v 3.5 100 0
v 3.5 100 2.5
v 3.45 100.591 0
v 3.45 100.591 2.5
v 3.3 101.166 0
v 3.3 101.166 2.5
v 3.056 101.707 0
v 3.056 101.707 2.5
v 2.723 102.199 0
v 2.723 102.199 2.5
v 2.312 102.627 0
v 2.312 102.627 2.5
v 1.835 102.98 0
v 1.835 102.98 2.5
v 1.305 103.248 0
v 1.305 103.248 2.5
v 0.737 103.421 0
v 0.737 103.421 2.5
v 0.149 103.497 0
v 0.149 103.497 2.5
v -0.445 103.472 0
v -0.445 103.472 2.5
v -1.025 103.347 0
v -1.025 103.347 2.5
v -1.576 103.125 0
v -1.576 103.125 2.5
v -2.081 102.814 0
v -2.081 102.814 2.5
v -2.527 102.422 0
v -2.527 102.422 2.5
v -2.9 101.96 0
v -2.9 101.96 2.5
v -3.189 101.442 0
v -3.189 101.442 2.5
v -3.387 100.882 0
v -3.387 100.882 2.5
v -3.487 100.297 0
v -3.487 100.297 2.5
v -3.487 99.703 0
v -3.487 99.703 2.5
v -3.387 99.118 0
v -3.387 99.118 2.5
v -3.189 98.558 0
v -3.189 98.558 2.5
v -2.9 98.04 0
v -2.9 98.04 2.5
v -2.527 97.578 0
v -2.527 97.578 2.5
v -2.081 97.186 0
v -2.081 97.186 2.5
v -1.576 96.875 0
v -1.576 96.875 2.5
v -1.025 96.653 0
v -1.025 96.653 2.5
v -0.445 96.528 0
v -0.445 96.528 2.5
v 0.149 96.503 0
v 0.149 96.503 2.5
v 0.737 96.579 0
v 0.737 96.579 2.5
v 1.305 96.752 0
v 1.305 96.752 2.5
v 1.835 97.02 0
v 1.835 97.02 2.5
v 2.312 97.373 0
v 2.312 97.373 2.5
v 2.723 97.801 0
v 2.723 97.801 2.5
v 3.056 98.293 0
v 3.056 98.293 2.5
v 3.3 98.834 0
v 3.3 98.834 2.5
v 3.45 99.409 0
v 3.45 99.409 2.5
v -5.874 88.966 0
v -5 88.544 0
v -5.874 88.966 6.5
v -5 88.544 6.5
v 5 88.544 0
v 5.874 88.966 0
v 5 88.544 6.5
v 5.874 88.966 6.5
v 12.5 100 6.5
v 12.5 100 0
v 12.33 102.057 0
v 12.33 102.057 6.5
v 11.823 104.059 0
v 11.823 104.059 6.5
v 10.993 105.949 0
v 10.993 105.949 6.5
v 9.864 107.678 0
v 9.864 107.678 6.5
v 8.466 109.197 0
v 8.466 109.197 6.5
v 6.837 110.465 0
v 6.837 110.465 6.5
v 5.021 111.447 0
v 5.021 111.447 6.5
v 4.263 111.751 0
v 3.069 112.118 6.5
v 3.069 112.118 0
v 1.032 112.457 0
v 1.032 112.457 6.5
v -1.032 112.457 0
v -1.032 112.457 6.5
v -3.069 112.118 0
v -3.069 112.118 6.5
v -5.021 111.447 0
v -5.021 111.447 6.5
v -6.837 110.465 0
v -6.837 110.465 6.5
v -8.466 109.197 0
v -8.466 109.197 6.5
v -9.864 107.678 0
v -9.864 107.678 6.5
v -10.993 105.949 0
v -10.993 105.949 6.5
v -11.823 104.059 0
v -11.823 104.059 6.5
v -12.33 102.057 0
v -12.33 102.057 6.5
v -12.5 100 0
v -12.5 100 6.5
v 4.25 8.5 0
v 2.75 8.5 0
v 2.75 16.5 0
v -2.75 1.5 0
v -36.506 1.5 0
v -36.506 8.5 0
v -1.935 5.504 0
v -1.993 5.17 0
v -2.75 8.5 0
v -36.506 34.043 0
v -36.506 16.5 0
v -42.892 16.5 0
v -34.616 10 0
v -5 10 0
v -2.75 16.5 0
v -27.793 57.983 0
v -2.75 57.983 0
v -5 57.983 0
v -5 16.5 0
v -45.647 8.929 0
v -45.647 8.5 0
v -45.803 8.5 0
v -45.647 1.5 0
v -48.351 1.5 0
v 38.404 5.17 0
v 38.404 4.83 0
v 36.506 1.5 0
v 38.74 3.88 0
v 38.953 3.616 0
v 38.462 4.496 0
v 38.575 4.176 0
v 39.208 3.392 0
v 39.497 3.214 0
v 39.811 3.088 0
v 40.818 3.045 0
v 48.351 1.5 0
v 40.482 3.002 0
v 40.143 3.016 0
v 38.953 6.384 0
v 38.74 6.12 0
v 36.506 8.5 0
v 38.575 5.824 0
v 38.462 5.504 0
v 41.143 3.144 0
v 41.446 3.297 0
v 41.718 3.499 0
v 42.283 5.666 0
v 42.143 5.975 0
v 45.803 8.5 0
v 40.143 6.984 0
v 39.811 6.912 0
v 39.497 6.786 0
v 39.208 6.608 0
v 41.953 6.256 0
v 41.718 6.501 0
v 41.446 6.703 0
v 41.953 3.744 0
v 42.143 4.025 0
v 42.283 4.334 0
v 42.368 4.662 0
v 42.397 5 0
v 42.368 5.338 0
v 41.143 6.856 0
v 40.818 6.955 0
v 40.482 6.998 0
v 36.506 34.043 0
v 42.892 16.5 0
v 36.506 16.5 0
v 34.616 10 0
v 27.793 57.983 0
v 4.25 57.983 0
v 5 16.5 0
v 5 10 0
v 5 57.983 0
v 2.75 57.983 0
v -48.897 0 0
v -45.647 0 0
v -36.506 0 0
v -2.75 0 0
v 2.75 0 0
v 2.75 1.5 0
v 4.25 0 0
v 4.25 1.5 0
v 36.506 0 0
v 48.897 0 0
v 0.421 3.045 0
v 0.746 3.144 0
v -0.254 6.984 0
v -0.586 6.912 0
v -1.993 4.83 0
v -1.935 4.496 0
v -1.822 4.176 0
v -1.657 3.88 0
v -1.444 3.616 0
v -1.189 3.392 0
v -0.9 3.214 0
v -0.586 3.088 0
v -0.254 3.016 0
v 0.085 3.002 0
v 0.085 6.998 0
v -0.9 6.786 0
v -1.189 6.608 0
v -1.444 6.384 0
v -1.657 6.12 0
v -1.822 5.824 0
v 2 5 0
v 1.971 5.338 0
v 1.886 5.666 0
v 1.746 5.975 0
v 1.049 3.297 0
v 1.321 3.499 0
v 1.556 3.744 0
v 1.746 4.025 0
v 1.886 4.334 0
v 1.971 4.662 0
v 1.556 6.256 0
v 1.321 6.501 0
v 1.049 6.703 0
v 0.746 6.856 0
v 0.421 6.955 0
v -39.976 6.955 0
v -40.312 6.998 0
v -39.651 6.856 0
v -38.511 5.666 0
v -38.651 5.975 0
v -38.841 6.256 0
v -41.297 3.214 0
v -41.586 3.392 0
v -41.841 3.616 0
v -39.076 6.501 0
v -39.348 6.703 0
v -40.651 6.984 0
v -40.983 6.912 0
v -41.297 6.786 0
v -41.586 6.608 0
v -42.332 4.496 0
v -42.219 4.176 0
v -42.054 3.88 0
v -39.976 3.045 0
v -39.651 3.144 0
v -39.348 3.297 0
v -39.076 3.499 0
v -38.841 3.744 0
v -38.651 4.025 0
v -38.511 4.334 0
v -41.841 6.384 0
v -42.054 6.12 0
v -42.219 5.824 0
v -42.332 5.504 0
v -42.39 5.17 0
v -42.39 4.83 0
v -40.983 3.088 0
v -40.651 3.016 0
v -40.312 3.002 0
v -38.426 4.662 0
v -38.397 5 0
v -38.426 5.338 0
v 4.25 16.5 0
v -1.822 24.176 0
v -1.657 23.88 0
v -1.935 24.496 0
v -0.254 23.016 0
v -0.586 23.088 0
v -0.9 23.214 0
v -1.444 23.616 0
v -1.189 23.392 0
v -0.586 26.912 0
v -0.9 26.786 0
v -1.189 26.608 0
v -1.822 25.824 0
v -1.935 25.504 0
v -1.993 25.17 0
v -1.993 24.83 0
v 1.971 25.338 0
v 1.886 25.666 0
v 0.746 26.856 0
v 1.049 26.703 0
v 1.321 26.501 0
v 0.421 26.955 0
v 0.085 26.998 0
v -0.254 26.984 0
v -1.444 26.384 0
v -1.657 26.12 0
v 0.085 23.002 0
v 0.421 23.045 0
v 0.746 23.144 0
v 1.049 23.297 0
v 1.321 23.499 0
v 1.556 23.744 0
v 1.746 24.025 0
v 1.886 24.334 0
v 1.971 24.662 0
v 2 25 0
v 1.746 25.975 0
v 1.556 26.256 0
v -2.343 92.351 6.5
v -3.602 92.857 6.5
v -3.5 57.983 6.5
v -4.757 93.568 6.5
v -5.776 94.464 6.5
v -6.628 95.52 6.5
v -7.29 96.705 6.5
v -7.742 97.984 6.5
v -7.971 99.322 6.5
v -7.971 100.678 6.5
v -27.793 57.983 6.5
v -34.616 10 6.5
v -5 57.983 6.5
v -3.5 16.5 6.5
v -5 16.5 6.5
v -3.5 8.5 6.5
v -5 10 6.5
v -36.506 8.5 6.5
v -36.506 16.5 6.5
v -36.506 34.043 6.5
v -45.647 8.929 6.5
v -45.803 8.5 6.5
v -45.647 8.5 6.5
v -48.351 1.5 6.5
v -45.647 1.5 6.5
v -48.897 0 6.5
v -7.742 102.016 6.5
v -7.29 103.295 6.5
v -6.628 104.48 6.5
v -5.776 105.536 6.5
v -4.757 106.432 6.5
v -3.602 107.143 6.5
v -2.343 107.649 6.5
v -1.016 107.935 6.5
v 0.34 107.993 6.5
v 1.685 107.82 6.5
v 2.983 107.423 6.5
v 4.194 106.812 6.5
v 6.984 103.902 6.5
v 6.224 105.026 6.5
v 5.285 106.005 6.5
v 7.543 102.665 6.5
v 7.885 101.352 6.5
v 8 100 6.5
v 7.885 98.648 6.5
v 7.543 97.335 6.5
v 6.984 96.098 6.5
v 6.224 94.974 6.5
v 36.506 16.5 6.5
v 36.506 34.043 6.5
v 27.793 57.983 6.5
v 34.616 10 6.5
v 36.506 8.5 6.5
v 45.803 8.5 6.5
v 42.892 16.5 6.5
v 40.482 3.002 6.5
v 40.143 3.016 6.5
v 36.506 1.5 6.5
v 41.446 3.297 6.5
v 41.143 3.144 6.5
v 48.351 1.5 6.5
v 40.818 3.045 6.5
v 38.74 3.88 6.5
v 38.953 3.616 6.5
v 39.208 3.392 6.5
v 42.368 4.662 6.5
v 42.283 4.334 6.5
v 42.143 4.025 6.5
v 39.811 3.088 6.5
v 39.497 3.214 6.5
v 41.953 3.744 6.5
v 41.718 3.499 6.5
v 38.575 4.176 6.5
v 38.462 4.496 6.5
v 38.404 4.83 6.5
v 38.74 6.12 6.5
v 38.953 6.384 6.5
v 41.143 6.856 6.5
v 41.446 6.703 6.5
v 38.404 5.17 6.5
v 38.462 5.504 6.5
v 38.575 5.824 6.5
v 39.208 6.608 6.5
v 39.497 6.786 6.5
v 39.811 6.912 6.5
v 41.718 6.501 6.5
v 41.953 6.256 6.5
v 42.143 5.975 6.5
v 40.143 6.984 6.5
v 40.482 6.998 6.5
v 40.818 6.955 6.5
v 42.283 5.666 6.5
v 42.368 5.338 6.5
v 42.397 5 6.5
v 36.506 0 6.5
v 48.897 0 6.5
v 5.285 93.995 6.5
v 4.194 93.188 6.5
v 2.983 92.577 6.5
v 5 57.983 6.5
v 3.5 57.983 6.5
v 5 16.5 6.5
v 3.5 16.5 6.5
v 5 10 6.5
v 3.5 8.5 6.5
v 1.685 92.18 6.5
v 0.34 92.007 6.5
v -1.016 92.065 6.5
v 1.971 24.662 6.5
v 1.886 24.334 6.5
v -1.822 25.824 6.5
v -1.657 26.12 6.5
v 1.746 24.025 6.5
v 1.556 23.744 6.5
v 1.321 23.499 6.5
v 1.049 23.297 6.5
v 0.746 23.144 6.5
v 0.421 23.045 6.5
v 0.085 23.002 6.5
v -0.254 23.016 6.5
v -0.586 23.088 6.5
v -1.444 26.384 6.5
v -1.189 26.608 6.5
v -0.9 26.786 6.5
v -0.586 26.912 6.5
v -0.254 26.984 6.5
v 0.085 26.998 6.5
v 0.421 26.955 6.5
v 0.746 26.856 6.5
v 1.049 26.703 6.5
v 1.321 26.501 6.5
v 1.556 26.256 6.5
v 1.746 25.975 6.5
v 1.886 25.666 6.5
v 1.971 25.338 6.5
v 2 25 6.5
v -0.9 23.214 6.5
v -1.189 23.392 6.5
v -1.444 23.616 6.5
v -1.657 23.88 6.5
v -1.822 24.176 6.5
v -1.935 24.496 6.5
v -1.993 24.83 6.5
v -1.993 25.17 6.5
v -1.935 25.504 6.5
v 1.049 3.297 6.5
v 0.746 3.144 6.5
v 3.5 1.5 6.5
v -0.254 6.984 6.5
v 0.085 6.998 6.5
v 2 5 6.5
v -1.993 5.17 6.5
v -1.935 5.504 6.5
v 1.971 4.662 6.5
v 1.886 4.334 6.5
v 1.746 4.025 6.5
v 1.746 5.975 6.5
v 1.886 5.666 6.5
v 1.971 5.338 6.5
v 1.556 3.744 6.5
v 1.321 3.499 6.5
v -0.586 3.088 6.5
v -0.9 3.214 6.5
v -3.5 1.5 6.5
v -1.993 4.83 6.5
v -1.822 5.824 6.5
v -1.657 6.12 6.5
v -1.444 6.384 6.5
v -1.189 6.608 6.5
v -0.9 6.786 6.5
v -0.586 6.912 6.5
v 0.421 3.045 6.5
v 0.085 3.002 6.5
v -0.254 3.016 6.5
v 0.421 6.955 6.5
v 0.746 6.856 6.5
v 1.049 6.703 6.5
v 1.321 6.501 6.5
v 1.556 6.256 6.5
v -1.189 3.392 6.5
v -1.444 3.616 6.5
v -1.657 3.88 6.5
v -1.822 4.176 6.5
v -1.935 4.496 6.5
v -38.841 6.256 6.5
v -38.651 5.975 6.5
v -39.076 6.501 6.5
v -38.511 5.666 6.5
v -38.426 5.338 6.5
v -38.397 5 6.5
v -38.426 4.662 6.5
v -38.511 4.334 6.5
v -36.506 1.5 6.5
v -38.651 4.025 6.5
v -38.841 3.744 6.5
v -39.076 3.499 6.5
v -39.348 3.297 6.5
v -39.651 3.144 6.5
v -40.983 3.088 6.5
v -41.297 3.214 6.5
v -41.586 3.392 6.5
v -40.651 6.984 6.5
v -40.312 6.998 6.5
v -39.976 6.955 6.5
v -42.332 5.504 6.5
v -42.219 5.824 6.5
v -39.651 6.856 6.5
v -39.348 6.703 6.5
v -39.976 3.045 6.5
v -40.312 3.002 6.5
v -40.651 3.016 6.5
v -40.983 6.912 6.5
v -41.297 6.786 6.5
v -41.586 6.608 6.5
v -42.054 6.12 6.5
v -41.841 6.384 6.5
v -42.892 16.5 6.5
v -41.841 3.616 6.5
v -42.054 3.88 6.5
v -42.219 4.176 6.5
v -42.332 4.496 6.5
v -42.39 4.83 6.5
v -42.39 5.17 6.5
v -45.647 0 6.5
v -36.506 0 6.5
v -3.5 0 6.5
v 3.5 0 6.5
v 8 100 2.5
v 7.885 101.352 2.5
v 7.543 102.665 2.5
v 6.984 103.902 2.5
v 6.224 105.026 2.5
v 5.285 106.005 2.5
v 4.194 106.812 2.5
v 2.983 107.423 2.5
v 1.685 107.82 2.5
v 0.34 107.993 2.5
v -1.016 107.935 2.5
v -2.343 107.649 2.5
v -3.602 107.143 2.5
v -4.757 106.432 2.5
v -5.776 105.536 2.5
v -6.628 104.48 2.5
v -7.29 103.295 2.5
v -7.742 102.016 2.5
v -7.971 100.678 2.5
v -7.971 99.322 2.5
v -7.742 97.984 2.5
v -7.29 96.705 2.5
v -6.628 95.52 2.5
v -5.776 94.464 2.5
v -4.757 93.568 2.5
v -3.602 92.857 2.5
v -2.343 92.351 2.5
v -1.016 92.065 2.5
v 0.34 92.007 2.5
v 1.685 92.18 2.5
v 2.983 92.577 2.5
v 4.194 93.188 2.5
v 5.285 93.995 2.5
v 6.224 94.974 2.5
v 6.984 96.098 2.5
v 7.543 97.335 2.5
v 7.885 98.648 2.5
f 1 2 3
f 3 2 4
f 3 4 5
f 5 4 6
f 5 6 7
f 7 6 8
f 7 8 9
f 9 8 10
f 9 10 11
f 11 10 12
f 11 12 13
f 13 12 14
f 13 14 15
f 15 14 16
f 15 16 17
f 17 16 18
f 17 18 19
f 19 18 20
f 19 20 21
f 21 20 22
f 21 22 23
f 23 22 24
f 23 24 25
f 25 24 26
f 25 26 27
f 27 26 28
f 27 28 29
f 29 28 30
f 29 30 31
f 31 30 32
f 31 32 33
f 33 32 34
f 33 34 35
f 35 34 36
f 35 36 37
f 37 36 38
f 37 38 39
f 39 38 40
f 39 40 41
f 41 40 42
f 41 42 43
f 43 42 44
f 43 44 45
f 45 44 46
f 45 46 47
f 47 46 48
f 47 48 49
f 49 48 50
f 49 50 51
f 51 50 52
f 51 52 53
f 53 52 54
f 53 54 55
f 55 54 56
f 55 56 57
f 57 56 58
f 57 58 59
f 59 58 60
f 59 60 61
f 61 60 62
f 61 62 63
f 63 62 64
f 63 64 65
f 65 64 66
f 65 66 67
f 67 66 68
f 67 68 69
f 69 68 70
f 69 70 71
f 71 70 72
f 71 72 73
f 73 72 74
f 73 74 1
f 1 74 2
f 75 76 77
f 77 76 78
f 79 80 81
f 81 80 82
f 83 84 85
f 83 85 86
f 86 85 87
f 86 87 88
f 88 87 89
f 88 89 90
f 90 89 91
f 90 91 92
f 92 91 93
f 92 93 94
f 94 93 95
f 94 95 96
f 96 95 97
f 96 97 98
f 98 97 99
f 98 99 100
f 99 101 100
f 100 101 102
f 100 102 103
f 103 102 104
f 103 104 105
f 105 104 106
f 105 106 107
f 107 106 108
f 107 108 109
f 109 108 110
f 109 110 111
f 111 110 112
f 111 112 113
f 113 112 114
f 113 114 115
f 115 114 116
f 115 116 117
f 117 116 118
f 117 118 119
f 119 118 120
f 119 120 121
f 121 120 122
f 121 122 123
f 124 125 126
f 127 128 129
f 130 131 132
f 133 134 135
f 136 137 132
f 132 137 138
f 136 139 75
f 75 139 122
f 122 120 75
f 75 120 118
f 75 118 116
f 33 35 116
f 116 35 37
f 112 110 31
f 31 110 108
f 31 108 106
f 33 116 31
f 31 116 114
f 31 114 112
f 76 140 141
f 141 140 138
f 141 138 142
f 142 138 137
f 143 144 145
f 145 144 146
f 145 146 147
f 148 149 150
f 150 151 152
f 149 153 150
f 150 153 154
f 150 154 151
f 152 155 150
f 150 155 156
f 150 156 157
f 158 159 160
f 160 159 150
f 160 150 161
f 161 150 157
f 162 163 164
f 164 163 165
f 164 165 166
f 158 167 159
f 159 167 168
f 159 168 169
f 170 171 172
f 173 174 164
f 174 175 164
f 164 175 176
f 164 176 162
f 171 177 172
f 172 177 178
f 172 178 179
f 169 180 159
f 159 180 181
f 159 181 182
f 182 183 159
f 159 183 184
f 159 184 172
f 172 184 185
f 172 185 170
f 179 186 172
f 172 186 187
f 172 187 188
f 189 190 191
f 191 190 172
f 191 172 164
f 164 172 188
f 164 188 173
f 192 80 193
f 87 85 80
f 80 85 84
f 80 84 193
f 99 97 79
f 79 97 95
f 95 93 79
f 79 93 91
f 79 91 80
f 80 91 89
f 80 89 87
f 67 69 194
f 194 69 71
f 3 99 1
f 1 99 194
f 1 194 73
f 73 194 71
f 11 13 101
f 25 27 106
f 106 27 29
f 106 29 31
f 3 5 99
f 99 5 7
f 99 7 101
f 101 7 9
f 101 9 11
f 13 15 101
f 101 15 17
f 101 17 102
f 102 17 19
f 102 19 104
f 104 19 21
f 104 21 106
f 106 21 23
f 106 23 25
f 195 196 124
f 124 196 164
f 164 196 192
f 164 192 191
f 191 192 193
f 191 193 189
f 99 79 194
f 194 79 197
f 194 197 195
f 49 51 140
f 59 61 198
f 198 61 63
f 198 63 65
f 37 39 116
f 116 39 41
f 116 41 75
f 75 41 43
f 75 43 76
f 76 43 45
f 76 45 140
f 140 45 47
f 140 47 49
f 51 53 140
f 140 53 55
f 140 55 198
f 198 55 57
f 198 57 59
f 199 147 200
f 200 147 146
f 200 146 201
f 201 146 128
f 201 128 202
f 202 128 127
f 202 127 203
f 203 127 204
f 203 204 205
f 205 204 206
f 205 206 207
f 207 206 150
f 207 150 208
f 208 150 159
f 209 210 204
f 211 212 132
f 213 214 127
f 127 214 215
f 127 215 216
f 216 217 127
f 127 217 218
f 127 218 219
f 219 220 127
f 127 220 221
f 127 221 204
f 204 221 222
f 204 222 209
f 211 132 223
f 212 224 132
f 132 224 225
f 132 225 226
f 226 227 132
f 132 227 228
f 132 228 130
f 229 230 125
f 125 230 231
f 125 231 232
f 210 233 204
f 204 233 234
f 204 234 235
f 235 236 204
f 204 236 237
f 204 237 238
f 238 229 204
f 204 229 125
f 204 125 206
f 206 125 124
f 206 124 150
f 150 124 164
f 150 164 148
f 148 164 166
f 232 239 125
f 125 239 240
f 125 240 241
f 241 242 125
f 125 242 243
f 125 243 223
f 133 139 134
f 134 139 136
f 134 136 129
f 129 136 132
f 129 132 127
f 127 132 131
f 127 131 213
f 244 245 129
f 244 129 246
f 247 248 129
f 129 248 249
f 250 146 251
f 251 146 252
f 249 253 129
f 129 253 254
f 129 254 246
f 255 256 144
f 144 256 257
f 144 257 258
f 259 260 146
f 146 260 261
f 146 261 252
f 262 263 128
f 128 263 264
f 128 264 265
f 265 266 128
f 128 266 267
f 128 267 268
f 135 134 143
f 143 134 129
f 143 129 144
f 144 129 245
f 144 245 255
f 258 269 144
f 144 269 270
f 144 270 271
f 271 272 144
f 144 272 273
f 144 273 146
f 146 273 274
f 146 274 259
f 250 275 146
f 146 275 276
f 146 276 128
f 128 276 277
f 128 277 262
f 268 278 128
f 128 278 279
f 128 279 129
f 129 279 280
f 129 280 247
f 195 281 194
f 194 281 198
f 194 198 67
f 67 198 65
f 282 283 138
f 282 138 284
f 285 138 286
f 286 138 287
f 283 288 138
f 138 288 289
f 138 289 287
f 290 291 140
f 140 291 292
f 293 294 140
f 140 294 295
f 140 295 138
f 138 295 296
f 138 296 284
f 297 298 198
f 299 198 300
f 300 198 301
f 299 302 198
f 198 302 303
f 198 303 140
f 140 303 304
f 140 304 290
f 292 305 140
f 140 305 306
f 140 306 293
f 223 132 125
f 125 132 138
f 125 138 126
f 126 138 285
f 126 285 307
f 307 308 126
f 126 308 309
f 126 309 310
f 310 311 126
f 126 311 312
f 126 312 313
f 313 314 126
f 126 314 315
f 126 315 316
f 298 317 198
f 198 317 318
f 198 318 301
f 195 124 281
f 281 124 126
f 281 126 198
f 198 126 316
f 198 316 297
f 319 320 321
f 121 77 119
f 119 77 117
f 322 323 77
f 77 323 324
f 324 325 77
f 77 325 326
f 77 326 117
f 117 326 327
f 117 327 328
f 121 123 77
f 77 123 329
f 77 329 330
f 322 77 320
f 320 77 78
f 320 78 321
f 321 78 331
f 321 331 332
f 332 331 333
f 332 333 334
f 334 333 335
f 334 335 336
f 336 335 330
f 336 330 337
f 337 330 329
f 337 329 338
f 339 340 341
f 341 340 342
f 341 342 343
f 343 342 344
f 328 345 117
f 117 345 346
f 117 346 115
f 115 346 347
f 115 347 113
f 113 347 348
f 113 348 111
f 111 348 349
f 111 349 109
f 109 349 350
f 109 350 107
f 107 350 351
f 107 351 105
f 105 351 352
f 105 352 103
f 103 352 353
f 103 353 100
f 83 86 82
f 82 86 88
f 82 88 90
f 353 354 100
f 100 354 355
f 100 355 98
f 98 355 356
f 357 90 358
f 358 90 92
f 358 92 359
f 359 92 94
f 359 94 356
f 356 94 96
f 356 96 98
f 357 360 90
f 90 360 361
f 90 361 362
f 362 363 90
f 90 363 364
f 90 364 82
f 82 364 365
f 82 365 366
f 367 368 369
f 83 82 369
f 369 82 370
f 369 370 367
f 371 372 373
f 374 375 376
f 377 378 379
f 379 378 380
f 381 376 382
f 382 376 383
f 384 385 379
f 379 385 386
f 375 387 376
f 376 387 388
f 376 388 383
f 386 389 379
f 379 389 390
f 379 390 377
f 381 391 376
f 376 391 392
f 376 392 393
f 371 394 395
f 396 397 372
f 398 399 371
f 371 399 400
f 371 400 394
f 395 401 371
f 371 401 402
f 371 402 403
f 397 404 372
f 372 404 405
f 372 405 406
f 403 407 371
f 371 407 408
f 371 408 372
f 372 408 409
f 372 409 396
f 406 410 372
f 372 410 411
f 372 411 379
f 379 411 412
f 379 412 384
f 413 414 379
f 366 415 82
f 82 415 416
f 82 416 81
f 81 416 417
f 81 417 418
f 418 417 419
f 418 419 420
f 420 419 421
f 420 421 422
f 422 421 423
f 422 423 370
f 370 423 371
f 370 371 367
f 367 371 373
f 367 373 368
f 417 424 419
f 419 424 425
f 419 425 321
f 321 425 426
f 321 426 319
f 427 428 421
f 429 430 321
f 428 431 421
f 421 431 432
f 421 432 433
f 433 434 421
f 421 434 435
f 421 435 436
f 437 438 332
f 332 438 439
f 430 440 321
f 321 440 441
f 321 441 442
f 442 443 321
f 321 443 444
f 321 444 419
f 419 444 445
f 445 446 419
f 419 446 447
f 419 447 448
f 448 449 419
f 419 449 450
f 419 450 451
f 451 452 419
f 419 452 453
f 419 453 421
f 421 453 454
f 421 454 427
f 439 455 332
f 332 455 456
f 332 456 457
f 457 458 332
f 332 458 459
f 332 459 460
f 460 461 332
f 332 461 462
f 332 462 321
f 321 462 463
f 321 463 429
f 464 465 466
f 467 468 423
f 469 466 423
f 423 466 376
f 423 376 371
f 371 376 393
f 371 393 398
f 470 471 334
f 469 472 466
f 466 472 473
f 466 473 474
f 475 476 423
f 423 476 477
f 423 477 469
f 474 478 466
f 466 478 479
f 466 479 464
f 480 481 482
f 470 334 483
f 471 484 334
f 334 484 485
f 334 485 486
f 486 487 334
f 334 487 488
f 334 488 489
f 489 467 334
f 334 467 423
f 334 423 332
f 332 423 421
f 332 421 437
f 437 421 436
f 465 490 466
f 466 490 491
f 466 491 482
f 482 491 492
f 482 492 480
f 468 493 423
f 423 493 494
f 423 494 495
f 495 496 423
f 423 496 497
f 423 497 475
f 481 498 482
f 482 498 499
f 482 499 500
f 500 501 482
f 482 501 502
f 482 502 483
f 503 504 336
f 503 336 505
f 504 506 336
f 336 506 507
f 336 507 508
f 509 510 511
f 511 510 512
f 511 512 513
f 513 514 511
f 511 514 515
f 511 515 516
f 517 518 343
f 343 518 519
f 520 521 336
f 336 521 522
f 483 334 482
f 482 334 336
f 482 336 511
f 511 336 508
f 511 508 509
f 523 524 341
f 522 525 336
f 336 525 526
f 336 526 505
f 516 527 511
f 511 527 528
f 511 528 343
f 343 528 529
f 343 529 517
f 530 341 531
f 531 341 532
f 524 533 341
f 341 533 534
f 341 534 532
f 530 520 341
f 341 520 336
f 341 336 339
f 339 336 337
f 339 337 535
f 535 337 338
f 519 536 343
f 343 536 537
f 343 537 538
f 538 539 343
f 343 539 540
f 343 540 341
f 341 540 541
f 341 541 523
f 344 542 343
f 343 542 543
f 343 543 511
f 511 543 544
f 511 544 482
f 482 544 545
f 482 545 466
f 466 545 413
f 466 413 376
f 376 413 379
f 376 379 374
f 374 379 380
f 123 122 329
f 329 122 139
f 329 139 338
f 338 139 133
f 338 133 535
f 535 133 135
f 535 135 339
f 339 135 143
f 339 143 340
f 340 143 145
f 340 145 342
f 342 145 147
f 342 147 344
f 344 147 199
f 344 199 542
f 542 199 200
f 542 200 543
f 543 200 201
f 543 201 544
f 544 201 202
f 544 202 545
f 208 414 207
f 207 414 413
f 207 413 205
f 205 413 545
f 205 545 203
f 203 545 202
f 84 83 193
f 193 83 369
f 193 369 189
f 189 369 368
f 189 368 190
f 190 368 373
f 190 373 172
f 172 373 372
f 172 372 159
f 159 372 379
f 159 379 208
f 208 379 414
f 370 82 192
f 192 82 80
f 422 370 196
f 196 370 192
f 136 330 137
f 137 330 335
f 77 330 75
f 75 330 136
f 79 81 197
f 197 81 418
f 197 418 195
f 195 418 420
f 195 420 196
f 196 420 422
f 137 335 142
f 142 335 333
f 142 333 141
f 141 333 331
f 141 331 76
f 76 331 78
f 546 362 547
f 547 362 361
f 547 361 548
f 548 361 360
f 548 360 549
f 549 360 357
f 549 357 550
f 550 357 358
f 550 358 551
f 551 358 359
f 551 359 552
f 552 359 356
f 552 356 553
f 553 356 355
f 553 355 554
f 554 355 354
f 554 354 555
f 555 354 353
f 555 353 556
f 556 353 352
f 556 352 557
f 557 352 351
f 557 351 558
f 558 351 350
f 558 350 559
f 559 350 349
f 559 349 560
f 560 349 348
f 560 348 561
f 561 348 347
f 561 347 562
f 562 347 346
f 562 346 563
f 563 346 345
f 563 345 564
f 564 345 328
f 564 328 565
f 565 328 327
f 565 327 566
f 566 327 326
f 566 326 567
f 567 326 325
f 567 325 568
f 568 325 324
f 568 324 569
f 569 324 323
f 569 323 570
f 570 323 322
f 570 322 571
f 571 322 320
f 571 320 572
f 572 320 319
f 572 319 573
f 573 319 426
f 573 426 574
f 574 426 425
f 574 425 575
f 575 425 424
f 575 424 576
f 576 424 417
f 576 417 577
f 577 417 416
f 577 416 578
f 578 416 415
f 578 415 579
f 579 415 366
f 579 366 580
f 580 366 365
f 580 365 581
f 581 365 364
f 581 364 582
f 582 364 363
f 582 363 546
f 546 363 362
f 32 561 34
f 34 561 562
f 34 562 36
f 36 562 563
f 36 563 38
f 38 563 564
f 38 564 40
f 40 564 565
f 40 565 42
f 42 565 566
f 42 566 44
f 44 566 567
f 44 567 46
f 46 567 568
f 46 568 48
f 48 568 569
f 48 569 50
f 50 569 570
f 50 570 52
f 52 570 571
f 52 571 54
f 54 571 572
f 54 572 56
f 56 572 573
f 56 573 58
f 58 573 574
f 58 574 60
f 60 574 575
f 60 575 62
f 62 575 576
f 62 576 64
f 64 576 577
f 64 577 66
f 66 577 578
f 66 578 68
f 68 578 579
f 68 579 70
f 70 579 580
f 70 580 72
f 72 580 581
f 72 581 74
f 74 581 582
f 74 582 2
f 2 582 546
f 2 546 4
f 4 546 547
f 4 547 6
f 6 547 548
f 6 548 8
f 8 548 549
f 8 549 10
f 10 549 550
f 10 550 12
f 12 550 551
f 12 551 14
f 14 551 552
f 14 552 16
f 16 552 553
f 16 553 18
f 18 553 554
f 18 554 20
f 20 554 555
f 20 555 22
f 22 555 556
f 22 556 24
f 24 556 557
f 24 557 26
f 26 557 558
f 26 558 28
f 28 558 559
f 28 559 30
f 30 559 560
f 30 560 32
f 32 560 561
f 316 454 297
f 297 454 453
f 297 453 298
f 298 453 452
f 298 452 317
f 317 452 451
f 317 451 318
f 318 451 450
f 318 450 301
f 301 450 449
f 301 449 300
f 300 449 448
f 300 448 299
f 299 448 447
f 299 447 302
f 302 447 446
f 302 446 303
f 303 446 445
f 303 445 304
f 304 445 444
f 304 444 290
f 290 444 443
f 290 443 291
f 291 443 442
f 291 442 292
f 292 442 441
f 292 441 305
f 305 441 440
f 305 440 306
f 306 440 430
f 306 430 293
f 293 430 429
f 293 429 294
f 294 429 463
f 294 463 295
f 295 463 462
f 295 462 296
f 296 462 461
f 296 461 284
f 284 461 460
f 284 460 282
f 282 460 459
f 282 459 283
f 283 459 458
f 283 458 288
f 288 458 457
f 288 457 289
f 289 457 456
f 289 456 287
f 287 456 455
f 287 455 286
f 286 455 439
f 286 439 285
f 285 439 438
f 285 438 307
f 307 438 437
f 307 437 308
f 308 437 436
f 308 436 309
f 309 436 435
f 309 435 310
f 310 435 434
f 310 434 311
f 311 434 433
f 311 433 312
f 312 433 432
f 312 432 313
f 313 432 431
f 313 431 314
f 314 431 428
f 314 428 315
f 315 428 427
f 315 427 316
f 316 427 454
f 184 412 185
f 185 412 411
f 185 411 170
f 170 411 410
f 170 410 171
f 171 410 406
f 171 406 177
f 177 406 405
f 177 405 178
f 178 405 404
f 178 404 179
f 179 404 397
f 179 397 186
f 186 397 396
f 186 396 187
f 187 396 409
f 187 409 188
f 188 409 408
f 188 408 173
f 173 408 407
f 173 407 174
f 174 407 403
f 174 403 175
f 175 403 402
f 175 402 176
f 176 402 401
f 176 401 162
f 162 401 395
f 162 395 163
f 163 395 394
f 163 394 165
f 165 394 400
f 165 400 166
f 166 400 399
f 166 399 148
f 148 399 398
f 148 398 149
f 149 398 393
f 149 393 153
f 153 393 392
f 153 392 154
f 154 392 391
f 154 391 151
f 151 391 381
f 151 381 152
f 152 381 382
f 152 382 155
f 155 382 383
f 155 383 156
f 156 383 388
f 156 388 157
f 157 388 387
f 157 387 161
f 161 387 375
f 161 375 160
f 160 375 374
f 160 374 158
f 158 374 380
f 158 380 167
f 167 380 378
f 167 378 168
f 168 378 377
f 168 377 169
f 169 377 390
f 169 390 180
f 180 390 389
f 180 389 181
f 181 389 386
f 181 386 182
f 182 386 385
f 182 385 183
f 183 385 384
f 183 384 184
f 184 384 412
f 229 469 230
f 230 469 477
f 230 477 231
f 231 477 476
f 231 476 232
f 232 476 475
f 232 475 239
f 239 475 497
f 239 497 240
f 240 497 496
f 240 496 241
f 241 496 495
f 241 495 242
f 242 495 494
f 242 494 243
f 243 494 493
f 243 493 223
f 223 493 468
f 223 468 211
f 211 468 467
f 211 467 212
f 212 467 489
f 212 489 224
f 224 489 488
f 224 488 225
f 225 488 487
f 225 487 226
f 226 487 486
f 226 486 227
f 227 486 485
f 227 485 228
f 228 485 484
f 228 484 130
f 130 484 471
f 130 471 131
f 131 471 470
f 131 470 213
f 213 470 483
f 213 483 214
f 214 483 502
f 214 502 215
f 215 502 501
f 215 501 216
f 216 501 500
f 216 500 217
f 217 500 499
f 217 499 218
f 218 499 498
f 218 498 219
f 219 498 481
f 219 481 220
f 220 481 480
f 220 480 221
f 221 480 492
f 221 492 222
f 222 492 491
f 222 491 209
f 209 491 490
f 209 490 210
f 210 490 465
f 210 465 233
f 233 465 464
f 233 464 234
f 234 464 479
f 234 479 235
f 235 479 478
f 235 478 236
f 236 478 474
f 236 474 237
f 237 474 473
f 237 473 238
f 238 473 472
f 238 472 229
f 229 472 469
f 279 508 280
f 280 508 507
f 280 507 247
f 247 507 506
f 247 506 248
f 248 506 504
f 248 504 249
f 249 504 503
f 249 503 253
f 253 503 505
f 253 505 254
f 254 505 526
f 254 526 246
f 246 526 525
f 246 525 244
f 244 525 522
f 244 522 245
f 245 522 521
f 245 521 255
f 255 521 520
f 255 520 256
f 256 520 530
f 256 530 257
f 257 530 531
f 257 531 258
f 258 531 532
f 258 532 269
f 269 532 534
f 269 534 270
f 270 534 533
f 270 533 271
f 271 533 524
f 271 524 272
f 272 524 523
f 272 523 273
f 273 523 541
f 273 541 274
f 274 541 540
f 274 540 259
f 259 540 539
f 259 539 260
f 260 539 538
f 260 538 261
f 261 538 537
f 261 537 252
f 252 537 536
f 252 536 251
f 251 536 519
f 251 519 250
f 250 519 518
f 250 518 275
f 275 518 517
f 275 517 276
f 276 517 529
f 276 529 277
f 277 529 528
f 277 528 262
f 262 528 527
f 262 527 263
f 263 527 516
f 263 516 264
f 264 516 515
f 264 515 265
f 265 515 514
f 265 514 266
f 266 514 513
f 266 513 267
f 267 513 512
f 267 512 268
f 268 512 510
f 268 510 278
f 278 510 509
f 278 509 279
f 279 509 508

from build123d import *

# Parameters (mm, degrees)
SKETCH1_R           = 12.5
BOSS_EXTRUDE1_DEPTH = 6.5
CUT_EXTRUDE1_REACH  = 124.839
SKETCH2_R           = 3.5
SKETCH2_3_R         = 8
SKETCH2_3_R_2       = 3.5
CUT_EXTRUDE2_DEPTH  = 4
CUT_EXTRUDE4_REACH  = 124.839
SKETCH3_R           = 2


with BuildPart() as part:
    # Sketch1 → Boss-Extrude1 (new body)
    with BuildSketch(Plane.XY):
        with Locations((0, 100)):
            Circle(SKETCH1_R)
        with BuildLine():
            Line((-48.897023427, 0), (48.897023427, 0))
            Line((48.897023427, 0), (12.5, 100))
            ThreePointArc((12.5, 100), (10.716279715, 93.564834962), (5.87418415, 88.966235431))
            Line((5.87418415, 88.966235431), (34.615543359, 10))
            Line((34.615543359, 10), (-34.615543359, 10))
            Line((-34.615543359, 10), (-5.87418415, 88.966235431))
            ThreePointArc((-5.87418415, 88.966235431), (-10.716279715, 93.564834962), (-12.5, 100))
            Line((-12.5, 100), (-48.897023427, 0))
        make_face()
        with BuildLine():
            Line((-5, 10), (5, 10))
            Line((5, 10), (5, 88.543560763))
            ThreePointArc((5, 88.543560763), (0, 87.5), (-5, 88.543560763))
            Line((-5, 88.543560763), (-5, 10))
        make_face()
    extrude(amount=BOSS_EXTRUDE1_DEPTH)

    # Sketch2 → Cut-Extrude1 (cut, up to next)
    with BuildSketch(Plane.XY.offset(6.5), mode=Mode.PRIVATE) as cut_extrude1_sk1:
        with Locations((0, 100)):
            Circle(SKETCH2_R)
    cut_extrude1_tool1 = extrude(cut_extrude1_sk1.sketch, amount=-CUT_EXTRUDE1_REACH, mode=Mode.PRIVATE) & part.part
    add(cut_extrude1_tool1.solids().sort_by_distance((0, 100, 6.5))[0], mode=Mode.SUBTRACT)

    # Sketch2<3> → Cut-Extrude2 (cut)
    with BuildSketch(Plane.XY.offset(6.5)):
        with Locations((0, 100)):
            Circle(SKETCH2_3_R)
        with Locations((0, 100)):
            Circle(SKETCH2_3_R_2, mode=Mode.SUBTRACT)
    extrude(amount=-CUT_EXTRUDE2_DEPTH, mode=Mode.SUBTRACT)

    # Sketch3 → Cut-Extrude4 (cut, up to next)
    with BuildSketch(Plane.XY.offset(6.5), mode=Mode.PRIVATE) as cut_extrude4_sk1:
        with Locations((0, 5)):
            Circle(SKETCH3_R)
    cut_extrude4_tool1 = extrude(cut_extrude4_sk1.sketch, amount=-CUT_EXTRUDE4_REACH, mode=Mode.PRIVATE) & part.part
    # Sketch3 → Cut-Extrude4 (cut, up to next)
    with BuildSketch(Plane.XY.offset(6.5), mode=Mode.PRIVATE) as cut_extrude4_sk2:
        with Locations((40.397023427, 5)):
            Circle(SKETCH3_R)
    cut_extrude4_tool2 = extrude(cut_extrude4_sk2.sketch, amount=-CUT_EXTRUDE4_REACH, mode=Mode.PRIVATE) & part.part
    # Sketch3 → Cut-Extrude4 (cut, up to next)
    with BuildSketch(Plane.XY.offset(6.5), mode=Mode.PRIVATE) as cut_extrude4_sk3:
        with Locations((-40.397023427, 5)):
            Circle(SKETCH3_R)
    cut_extrude4_tool3 = extrude(cut_extrude4_sk3.sketch, amount=-CUT_EXTRUDE4_REACH, mode=Mode.PRIVATE) & part.part
    # Sketch3 → Cut-Extrude4 (cut, up to next)
    with BuildSketch(Plane.XY.offset(6.5), mode=Mode.PRIVATE) as cut_extrude4_sk4:
        with Locations((0, 25)):
            Circle(SKETCH3_R)
    cut_extrude4_tool4 = extrude(cut_extrude4_sk4.sketch, amount=-CUT_EXTRUDE4_REACH, mode=Mode.PRIVATE) & part.part
    add(cut_extrude4_tool1.solids().sort_by_distance((0, 5, 6.5))[0], mode=Mode.SUBTRACT)
    add(cut_extrude4_tool2.solids().sort_by_distance((40.397023, 5, 6.5))[0], mode=Mode.SUBTRACT)
    add(cut_extrude4_tool3.solids().sort_by_distance((-40.397023, 5, 6.5))[0], mode=Mode.SUBTRACT)
    add(cut_extrude4_tool4.solids().sort_by_distance((0, 25, 6.5))[0], mode=Mode.SUBTRACT)


solid = part.part
